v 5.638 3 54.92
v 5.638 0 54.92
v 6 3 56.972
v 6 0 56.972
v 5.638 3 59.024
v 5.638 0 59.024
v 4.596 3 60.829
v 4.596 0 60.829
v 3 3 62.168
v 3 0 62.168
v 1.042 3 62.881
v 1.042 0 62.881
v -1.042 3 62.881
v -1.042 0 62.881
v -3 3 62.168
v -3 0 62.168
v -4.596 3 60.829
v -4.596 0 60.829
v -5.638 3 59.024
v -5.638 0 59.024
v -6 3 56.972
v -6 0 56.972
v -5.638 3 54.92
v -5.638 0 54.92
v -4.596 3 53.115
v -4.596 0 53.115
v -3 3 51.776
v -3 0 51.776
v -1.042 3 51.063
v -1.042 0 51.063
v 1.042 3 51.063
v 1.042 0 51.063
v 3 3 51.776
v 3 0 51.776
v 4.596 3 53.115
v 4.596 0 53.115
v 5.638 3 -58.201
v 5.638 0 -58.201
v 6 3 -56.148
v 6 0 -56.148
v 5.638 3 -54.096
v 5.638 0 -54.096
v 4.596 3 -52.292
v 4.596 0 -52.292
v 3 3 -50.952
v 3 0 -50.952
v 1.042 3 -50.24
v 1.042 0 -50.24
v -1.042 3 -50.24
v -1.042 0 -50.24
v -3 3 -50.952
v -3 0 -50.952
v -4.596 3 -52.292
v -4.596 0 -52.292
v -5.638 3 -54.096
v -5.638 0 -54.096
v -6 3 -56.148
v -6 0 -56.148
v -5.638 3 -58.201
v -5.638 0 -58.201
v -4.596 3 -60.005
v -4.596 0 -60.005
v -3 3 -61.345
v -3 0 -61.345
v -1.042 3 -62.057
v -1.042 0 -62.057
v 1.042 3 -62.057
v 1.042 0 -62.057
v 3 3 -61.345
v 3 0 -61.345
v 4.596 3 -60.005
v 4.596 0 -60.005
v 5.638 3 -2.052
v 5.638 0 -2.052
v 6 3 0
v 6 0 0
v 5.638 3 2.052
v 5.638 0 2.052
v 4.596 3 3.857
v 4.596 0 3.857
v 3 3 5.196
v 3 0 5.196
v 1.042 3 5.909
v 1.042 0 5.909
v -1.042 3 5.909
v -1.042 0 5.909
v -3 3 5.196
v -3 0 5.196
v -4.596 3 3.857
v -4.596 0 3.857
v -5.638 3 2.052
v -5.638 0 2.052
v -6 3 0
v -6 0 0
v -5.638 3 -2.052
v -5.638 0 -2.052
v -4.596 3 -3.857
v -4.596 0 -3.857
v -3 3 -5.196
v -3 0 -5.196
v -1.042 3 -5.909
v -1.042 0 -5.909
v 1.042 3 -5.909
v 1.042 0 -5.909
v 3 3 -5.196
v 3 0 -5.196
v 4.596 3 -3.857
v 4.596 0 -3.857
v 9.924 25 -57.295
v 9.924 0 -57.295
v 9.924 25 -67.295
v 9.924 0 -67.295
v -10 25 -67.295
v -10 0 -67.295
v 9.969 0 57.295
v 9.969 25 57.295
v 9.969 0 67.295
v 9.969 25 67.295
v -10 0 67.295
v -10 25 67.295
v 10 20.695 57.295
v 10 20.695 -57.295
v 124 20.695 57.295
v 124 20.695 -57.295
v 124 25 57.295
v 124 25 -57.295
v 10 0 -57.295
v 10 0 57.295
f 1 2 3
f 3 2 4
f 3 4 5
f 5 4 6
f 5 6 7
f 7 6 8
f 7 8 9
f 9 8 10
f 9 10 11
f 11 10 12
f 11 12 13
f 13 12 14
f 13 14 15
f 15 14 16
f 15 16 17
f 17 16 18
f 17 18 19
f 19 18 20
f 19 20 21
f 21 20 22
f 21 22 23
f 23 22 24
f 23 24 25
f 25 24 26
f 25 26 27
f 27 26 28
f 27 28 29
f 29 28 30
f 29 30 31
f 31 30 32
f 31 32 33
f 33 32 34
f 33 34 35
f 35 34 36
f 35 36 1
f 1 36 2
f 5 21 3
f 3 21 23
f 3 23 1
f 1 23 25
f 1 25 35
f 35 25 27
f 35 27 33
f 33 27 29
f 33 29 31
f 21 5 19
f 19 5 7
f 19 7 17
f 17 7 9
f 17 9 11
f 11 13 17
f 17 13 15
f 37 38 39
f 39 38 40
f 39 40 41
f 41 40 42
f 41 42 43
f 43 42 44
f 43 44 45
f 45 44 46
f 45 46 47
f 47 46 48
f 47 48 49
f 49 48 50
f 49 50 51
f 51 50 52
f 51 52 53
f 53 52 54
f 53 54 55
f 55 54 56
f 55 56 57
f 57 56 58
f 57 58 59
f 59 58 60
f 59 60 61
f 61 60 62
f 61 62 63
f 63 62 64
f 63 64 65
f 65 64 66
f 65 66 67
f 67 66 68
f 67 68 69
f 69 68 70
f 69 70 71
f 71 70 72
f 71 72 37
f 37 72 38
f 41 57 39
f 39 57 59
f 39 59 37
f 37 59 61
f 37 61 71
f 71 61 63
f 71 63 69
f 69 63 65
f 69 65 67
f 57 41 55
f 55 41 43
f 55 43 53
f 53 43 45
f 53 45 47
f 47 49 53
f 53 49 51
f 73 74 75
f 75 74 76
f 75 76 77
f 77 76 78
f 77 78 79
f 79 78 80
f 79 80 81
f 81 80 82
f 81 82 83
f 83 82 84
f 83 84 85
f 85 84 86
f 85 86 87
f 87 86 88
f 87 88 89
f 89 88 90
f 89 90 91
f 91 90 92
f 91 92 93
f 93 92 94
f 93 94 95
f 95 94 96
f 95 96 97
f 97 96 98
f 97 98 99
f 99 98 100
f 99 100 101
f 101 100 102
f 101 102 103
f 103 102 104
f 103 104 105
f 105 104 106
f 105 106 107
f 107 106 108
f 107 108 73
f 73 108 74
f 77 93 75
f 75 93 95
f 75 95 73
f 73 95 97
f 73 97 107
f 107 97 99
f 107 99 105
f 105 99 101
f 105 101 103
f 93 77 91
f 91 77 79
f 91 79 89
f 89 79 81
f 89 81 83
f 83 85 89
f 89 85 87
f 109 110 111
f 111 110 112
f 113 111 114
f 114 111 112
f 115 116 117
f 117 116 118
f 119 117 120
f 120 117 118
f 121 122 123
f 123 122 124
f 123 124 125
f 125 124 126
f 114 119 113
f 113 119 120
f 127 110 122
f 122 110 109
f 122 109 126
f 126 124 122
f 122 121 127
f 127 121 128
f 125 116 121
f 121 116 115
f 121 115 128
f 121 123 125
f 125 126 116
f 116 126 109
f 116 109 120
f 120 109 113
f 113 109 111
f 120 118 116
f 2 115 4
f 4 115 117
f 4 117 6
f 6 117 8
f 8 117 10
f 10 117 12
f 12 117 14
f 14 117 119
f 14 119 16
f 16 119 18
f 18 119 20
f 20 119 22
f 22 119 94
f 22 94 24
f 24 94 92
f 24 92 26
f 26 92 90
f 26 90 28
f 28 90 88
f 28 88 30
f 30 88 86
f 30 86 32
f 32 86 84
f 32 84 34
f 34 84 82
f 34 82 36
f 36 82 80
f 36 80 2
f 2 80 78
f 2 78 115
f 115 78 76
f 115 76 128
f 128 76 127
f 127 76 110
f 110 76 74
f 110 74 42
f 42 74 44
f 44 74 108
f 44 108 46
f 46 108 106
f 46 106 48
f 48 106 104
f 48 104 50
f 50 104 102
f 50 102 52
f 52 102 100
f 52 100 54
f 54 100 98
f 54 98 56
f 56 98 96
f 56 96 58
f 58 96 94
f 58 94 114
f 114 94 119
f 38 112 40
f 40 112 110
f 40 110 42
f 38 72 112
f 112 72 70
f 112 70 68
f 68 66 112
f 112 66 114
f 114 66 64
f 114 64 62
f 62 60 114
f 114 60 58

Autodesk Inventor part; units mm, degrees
ref_plane "YZ Plane" through (0, 0, 0) normal (1, 0, 0) x (0, 1, 0)
ref_plane "XZ Plane" through (0, 0, 0) normal (0, 1, 0) x (-1, 0, 0)
ref_plane "XY Plane" through (0, 0, 0) normal (0, 0, 1) x (1, 0, 0)
sketch "Sketch1" plane through (0, 0, 0) normal (0, 1, 0) x (-1, 0, 0)
  line L0 (10, -57.295) -> (-10, -57.295)
  line L1 (-10, -57.295) -> (-10, 57.295)
  line L2 (-10, 57.295) -> (10, 57.295)
  line L3 (10, 57.295) -> (10, -57.295)
  line L4 (10, -57.295) -> (-10, 57.295) construction
  line L5 (-10, -57.295) -> (10, 57.295) construction
  point P0 (0, 0)
  dimension "d0" = 114.59
  dimension "d1" = 20
extrude "Extrusion1" add sketch "Sketch1" along normal blind 25
sketch "Sketch2" plane through (10, 0, 57.295) normal (1, 0, 0) x (0, 0, -1)
  line L0 (0, 0) -> (0, 25) projected
  line L1 (114.59, 0) -> (114.59, 25) projected
  line L2 (0, 25) -> (114.59, 25)
  line L3 (114.59, 25) -> (114.59, 20.6952)
  line L4 (114.59, 20.6952) -> (0, 20.6952)
  line L5 (0, 20.6952) -> (0, 25)
  point P0 (57.295, 0)
extrude "Extrusion2" add sketch "Sketch2" along normal blind 114
sketch "Sketch3" plane through (0, 0, 0) normal (0, -1, 0) x (1, 0, 0)
  circle A0 centre (0, 0) radius 6
  circle A1 centre (0, -56.1484) radius 6
  circle A2 centre (0, 56.972) radius 6
  dimension "d7" = 12
  dimension "d9" = 12
  dimension "d10" = 12
sketch "Sketch4" plane through (-10, 0, 57.295) normal (0, 0, 1) x (1, 0, 0)
  line L0 (20, 0) -> (0, 0) projected
  line L1 (0, 25) -> (134, 25) projected
  line L2 (0, 0) -> (19.9687, 0)
  line L3 (19.9687, 0) -> (19.9687, 25)
  line L4 (19.9687, 25) -> (0, 25)
  line L5 (0, 25) -> (0, 0)
  point P0 (10, 0)
  point P1 (0, 25)
extrude "Extrusion3" add sketch "Sketch4" along normal blind 10
sketch "Sketch5" plane through (10, 0, -57.295) normal (0, 0, -1) x (-1, 0, 0)
  line L0 (20, 0) -> (20, 25) projected
  line L1 (20, 25) -> (-114, 25) projected
  line L2 (20, 0) -> (0.0765, 0)
  line L3 (0.0765, 0) -> (0.0765, 25)
  line L4 (0.0765, 25) -> (20, 25)
  line L5 (20, 25) -> (20, 0)
  point P0 (10, 0)
extrude "Extrusion4" add sketch "Sketch5" along normal blind 10
extrude "Extrusion5" cut sketch "Sketch3" against normal blind 3
properties part number "compartment 1"
